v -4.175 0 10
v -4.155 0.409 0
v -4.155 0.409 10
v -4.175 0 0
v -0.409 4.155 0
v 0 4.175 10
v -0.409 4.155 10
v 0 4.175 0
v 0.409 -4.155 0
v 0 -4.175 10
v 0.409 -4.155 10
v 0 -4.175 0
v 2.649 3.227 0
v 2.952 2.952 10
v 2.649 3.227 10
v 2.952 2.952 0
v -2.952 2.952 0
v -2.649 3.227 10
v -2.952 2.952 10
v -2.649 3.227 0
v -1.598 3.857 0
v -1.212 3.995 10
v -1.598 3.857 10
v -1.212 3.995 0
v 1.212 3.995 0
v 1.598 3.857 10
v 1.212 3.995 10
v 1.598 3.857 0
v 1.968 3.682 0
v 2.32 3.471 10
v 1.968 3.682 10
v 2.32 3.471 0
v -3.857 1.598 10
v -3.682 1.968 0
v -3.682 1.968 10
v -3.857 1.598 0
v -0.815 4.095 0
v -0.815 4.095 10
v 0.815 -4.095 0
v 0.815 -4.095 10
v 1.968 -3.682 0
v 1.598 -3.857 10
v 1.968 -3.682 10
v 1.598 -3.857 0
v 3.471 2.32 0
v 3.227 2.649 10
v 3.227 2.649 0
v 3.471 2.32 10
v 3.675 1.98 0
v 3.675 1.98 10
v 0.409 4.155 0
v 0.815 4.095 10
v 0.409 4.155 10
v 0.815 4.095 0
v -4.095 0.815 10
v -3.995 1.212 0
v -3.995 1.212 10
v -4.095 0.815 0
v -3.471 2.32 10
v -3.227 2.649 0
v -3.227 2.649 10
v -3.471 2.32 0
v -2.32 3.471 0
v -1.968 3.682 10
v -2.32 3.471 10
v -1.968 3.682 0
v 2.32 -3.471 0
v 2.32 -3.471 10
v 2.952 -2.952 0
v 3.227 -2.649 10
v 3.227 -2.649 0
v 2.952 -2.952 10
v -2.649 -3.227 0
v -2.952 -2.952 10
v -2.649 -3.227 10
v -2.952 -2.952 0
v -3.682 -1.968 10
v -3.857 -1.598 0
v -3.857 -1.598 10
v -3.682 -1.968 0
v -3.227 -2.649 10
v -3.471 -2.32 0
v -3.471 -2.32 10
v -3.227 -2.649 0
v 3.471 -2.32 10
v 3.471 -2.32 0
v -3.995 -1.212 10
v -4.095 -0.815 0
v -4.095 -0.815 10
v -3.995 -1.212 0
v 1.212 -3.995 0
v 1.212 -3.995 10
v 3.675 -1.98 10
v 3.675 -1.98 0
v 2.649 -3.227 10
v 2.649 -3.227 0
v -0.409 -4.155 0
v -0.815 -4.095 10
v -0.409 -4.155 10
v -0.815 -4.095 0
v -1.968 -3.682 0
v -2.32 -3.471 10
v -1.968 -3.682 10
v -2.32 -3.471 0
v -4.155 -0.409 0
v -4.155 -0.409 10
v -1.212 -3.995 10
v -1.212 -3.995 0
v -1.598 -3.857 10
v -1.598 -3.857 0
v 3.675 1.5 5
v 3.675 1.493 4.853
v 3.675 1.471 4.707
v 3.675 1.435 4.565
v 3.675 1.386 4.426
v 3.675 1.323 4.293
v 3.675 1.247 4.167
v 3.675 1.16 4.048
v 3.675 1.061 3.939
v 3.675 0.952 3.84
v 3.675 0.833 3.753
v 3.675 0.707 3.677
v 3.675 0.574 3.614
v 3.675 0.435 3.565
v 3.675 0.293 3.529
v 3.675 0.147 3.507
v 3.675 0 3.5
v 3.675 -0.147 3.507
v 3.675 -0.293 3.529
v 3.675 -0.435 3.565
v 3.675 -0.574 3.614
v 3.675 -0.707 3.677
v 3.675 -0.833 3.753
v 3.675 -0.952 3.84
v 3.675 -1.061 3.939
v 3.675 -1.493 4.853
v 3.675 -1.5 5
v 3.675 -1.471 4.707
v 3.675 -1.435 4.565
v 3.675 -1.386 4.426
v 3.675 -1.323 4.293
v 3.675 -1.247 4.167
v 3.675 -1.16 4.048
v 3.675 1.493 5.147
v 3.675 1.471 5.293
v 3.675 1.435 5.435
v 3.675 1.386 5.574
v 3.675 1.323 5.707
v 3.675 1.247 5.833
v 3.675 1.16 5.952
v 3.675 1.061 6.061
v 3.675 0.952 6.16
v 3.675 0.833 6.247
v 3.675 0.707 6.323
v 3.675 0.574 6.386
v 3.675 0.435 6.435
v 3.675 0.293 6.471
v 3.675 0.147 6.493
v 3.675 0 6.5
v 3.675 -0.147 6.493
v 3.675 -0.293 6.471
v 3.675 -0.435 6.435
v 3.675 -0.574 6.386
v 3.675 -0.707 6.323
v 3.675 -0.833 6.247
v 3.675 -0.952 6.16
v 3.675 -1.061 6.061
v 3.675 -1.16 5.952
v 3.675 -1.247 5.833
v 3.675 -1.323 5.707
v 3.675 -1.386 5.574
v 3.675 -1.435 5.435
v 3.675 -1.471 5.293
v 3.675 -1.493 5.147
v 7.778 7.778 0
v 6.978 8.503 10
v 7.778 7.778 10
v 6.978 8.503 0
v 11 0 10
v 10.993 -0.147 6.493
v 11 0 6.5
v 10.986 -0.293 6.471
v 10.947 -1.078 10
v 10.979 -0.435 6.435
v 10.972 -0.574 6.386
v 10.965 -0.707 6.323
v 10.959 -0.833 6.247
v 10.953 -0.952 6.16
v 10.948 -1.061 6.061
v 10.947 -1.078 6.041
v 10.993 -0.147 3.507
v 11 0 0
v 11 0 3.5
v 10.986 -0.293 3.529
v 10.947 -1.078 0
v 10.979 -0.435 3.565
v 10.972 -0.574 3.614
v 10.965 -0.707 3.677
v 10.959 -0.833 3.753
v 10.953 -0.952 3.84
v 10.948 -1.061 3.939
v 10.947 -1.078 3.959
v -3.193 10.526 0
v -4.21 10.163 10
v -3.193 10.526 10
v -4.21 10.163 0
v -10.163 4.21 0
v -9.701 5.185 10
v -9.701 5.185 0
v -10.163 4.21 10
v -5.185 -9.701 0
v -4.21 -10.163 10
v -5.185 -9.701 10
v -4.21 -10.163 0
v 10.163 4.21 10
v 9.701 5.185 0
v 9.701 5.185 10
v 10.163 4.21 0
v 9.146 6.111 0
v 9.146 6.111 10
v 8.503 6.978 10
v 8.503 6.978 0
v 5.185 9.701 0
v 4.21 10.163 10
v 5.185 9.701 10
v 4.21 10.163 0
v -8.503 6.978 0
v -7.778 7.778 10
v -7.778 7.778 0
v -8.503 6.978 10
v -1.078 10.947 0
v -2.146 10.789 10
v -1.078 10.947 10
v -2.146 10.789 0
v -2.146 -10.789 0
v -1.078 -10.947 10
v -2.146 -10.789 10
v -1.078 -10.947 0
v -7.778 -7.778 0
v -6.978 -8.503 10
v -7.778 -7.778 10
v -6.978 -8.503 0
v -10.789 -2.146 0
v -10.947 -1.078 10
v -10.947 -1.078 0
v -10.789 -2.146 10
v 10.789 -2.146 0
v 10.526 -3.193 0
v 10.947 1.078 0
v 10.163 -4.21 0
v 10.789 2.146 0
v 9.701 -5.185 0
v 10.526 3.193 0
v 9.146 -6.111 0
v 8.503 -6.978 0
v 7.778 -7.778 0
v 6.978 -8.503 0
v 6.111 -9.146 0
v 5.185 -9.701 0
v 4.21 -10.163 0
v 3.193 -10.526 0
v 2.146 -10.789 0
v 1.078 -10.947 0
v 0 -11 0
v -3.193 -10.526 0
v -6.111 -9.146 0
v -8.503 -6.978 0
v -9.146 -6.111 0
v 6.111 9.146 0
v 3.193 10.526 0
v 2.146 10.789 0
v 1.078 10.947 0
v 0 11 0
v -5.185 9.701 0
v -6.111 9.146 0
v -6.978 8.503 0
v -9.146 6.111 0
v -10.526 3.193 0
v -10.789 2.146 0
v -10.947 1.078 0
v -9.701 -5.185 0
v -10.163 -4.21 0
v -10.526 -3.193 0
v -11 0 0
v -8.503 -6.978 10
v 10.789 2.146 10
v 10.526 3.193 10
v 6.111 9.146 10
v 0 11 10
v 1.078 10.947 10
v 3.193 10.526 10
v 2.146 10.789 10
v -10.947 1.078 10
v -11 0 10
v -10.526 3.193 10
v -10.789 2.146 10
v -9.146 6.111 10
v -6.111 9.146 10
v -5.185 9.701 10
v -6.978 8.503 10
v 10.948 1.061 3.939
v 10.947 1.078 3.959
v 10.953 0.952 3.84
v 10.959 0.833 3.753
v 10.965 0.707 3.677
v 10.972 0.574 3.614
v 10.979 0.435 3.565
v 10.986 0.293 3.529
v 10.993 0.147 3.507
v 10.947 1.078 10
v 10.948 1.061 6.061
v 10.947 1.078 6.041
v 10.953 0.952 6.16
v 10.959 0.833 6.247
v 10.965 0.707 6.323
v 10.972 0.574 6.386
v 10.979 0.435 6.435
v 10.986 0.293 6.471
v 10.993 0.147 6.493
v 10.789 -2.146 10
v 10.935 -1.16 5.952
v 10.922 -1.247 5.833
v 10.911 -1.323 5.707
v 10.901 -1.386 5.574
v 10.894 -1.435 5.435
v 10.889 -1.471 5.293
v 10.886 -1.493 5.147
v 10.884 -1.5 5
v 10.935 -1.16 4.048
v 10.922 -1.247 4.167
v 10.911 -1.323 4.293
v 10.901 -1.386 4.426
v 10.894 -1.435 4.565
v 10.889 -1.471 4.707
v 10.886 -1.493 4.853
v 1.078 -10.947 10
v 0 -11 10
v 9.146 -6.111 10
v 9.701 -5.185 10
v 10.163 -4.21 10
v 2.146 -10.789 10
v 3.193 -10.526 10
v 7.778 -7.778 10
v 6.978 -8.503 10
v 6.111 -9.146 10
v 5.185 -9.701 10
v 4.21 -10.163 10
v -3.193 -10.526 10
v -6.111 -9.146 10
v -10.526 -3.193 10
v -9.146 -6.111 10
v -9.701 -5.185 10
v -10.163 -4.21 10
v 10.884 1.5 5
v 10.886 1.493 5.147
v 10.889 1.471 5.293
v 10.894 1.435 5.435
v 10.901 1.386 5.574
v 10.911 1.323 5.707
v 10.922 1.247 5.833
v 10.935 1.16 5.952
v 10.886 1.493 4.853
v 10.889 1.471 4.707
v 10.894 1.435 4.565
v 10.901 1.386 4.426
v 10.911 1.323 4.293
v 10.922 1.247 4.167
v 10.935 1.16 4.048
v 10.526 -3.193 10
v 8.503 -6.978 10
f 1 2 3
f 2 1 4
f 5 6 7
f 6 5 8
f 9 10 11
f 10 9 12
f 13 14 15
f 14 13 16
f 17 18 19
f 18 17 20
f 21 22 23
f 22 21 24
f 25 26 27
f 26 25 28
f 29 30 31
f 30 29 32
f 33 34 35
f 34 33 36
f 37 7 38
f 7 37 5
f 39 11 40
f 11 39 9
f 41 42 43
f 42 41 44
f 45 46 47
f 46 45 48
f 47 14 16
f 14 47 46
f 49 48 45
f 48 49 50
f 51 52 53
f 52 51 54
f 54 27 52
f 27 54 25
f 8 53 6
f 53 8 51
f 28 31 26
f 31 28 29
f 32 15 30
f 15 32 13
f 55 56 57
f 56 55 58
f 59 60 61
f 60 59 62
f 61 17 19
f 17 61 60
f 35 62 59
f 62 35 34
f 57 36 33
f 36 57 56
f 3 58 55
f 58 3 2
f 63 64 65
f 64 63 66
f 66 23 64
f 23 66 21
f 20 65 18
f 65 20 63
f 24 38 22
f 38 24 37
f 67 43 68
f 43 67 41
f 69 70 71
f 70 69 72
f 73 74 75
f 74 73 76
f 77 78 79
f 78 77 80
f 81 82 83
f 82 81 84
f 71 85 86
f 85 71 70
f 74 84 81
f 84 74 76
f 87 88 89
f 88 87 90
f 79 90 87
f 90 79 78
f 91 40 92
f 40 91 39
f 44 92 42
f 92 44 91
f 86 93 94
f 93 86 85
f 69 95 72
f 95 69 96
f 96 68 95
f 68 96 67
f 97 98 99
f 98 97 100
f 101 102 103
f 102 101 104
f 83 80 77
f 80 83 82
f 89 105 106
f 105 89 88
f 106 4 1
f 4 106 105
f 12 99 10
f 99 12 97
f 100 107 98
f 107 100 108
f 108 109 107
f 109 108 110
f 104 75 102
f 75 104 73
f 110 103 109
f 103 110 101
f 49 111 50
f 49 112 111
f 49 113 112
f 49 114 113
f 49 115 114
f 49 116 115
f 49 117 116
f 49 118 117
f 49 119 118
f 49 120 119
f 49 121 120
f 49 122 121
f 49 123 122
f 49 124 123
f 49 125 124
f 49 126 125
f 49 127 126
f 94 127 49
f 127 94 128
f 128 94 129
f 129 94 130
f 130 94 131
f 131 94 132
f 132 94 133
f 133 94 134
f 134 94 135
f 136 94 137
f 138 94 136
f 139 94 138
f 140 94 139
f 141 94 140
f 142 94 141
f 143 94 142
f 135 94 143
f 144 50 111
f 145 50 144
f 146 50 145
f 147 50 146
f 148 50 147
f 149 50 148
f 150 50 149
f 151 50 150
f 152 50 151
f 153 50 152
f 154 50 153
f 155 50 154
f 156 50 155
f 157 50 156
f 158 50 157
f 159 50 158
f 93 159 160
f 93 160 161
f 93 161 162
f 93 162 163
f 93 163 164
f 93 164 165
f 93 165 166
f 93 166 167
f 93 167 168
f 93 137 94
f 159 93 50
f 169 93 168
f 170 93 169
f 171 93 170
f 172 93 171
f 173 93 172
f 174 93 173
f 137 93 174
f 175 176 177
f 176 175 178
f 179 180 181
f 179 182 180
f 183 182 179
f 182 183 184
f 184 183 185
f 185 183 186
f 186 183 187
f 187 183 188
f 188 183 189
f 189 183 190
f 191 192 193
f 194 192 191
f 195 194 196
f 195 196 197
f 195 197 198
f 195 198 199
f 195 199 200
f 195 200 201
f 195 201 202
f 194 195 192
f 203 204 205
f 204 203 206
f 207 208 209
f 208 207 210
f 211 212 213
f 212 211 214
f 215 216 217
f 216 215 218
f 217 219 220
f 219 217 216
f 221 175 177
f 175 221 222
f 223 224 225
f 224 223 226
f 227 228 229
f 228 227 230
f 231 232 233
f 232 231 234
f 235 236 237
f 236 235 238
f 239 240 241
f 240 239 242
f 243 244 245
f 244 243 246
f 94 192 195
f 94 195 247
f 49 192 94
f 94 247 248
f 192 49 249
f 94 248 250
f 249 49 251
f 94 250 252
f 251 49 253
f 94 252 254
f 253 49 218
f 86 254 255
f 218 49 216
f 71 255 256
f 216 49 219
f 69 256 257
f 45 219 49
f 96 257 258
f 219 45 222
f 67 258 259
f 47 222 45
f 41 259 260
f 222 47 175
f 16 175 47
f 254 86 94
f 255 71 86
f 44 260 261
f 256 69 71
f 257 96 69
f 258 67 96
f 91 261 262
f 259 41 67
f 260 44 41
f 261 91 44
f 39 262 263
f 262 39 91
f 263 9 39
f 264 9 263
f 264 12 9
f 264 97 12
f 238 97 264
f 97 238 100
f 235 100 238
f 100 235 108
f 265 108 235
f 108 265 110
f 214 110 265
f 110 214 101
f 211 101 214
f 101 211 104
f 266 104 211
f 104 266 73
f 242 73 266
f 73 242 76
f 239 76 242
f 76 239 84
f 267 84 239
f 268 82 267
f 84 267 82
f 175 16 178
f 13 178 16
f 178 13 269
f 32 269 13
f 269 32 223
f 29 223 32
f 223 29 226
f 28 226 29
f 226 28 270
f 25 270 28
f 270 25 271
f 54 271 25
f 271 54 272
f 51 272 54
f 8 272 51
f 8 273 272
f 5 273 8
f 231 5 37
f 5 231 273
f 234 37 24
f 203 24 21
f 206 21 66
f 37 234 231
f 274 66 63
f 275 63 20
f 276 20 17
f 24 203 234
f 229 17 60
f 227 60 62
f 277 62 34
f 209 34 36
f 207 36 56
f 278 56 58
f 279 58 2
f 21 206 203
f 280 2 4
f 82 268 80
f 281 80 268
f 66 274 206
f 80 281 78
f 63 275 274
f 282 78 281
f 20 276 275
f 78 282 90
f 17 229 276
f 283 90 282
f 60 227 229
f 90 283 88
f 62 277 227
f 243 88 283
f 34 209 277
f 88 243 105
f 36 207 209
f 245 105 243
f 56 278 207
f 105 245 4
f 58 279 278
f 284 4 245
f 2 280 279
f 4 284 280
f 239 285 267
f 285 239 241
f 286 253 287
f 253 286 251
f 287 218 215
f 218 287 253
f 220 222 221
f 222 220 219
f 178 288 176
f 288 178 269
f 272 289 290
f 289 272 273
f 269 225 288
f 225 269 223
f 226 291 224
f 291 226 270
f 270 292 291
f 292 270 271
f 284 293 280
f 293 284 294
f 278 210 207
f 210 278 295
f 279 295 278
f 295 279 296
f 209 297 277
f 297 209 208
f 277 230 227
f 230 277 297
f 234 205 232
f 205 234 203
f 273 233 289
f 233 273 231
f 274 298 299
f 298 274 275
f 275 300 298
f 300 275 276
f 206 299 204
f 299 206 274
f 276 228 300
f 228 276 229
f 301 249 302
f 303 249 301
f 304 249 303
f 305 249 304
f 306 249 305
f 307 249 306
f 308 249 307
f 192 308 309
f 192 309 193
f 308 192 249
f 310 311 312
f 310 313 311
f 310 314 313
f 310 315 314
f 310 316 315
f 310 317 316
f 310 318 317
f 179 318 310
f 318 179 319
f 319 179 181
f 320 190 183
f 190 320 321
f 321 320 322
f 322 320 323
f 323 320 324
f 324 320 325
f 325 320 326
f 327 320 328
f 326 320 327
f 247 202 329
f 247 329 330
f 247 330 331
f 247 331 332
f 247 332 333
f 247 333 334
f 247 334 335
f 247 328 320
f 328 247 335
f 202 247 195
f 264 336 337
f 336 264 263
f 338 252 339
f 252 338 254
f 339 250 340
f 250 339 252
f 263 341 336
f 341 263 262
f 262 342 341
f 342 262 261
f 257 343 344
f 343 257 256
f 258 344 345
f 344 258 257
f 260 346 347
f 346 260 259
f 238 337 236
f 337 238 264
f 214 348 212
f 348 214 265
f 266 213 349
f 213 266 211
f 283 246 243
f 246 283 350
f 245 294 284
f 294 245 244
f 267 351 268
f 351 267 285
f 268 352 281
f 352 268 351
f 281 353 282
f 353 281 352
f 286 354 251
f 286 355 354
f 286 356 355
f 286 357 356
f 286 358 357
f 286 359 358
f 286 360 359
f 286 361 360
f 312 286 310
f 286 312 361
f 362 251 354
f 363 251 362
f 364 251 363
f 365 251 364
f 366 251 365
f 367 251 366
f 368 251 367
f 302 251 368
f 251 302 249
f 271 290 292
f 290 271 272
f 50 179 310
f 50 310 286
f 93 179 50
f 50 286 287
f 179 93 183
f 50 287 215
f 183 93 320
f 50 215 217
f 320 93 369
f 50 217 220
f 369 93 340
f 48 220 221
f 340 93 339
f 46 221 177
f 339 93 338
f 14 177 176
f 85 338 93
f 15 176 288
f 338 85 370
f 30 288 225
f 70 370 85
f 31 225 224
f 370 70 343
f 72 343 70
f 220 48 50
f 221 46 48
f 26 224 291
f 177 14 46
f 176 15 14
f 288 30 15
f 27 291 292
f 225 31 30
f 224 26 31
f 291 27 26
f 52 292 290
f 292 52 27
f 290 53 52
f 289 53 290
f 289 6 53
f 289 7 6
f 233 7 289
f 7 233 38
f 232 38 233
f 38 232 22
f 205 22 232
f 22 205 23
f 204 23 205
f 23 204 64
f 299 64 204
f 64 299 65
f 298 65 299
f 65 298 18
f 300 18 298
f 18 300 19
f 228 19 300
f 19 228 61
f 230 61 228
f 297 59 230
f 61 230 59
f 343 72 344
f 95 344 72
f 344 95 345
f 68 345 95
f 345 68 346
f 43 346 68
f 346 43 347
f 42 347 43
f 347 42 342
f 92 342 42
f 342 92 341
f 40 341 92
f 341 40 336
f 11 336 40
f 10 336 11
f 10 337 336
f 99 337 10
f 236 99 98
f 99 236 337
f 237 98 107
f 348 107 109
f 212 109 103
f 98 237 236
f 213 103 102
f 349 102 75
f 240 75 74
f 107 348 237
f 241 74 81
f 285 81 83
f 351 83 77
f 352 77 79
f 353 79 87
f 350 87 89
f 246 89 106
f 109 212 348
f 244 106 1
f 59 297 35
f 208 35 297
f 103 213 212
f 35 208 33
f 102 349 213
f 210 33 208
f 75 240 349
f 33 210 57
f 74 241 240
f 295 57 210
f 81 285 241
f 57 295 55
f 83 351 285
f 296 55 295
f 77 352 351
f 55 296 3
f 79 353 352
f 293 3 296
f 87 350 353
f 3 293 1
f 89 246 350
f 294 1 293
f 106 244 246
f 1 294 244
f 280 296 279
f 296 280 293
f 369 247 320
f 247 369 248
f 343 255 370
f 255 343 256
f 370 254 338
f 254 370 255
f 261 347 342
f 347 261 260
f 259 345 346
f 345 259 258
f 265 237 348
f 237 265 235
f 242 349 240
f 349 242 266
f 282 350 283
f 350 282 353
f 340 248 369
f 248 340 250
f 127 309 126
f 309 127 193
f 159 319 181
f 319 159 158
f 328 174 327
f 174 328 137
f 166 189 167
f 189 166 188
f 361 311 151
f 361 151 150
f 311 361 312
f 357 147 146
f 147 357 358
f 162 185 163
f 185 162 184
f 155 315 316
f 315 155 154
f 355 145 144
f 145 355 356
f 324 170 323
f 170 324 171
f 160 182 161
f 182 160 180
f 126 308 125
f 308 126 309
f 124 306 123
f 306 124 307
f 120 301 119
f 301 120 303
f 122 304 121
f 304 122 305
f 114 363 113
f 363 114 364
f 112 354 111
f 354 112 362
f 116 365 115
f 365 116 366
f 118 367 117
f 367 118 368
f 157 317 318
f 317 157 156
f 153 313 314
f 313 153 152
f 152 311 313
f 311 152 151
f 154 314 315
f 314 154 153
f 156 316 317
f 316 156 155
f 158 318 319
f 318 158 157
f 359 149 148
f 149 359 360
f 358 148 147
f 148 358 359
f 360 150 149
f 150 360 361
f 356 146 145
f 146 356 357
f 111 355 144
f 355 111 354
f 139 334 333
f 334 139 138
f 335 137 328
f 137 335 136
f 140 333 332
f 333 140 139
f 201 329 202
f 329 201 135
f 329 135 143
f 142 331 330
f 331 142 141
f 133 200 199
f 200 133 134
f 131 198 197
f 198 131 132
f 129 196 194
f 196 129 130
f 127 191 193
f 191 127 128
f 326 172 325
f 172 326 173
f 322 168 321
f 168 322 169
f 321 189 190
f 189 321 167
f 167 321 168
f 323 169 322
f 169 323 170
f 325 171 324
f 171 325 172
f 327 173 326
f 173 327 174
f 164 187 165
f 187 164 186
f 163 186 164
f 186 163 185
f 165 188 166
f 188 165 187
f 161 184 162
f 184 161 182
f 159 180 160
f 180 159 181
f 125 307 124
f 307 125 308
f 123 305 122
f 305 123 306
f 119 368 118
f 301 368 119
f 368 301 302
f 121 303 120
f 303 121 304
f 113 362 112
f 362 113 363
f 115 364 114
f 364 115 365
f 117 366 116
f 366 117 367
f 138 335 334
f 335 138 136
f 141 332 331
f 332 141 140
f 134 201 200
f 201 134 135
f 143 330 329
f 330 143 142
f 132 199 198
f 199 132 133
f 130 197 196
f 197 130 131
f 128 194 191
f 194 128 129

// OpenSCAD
// file: parameters.scad
// =============================================================================
// Gen-BM — nightly 2026-10-06 (physics_scorer, honest magpylib watts)
// Lowest-gap pancake: Ø20 ring at R52 (Ø5 assists R42/52/62) with low-profile 7.65 mm dense-wound copper and an 18 mm radial build on wide 29–71 mm sector bobbins — the smallest magnet gap of the series (10.25 mm) — on thick 1/4" (6.35 mm) steel so the higher flux per pole stays well clear of saturation.
// Clocking 0 deg (magnets N facing S) + D-flat keyed bore + index notch + flip-symmetric hole map.
// Windable 2-piece bobbin; turns = physics_scorer turns_fit; copper only between flanges.
// Steel back-iron: 2× Ø138 × 6.35 mm (1/4") mild-steel discs (steel_backiron_disc.dxf); magnets sit ON the steel
// (through-pockets) -> score with --back-iron.
// =============================================================================
topology            = "dual_rotor";

// --- Wire / winding (physics_scorer winding-fit) -------------------------------
wire_awg            = 26;
wire_od             = 0.45;     // insulated OD mm (bare 0.405)
fill_realistic      = 0.65;     // insulated-wire area / window (DENSE layered wind with a jig; scorer cap 0.65)
turns               = 562;       // = physics_scorer turns_fit (do NOT raise)
coil_former_type    = "bobbin";
coil_core_inset     = 18.00;     // radial copper build: hub = copper boundary inset by this
wind_build_axial    = 0.0;      // nothing proud of the flanges
wind_build_radial   = 0.0;

// --- Bobbin (base + lid) ---------------------------------------------------------
coil_id_r           = 29.00;    // copper boundary sector
coil_od_r           = 71.00;
span_deg            = 52.68;    // = pitch - 2*asin((wall+0.85)/coil_id_r) -> >=1.2 mm stator web
former_web          = 7.65;     // copper height between flanges (TALL copper: steel keeps Bz up)
flange_t            = 0.80;     // >= 0.8 mm FDM wall rule (tall winds push on the flanges)
wall                = 1.00;     // flange lip beyond copper
former_bare_h       = former_web + 2 * flange_t;
coil_envelope_h     = former_bare_h + 2 * wind_build_axial;
tab_w               = 7.0;
tab_len             = 7.0;
tab_h               = former_bare_h / 2;
pin_d               = 1.9;      // 1.75 mm filament locating pin
coil_mount_r        = coil_od_r + 0.2 + 4.0;
lead_y              = 1.6;
lead_slot_w         = 0.9;
lead_groove_d       = 0.6;

// --- Gap -------------------------------------------------------------------------
run_clear           = 0.50;     // rotor face -> flange
gap_spacer_h        = run_clear + wind_build_axial;
m2m                 = coil_envelope_h + 2 * run_clear;   // rotor face to rotor face (= gap_sleeve length)

// --- Stator ----------------------------------------------------------------------
coil_stations       = 6;
bay_clear           = 0.25;
stator_thick        = former_bare_h;                        // bobbins flush both faces
stator_od           = 160.0;
shaft_clear_stator  = 14.0;     // stator is static; gap sleeve OD 12 spins inside

// --- Rotor(s) --------------------------------------------------------------------
magnet_Br           = 1.43;     // N52
magnet_d_large      = 20.0;
magnet_h_large      = 5.0;      // one O20x5 per pocket
magnet_h_small      = 5.0;      // one O5x5 per pocket
halbach_magnetisation = "diametric"; // O5x5 assist magnets MUST be DIAMETRICALLY magnetised (tangential)
rotor_b_same_axis   = true;     // same-index magnets share one axis: N faces S across the gap
large_pocket_d      = 20.3;
small_pocket_d      = 5.3;
pocket_h            = 5.10;     // THROUGH the carrier: magnet back face sits on the steel disc
large_n             = 8;
R_large             = 52.0;
R_small_inner       = 42.0;
R_small_mid         = 52.0;
R_small_outer       = 62.0;
small_r_list        = [R_small_inner, R_small_mid, R_small_outer];   // O5 pockets between poles
carrier_od          = 138.0;
carrier_thick       = pocket_h;
hub_h               = 13.5;     // > steel_t + insert: radial set-screw clears the steel
hub_od              = 24.0;     // slim hub so the M4 brace rods fit at R~18 inside the coil ring
hub_insert_d        = 4.0;      // M3 heat-set insert, radial, bears on the D-flat
rotor_b_offset_deg  = 0.0;      // CLOCKING: magnets directly opposite
shaft_key           = "dflat";
dflat_depth         = 0.5;      // 8 mm shaft with 0.5 mm flat (7.5 across flat)
index_notch_d       = 3.0;

// --- Steel back-iron (buyable laser-cut) -------------------------------------------
steel_t             = 6.35;      // mild steel thickness (image method ignores it; sized from steel_flux.py so the return path stays well below saturation)
steel_center_hole   = 26.0;     // slips over the rotor hub (OD 24)
steel_od            = carrier_od;   // steel disc OD = rotor carrier OD

// --- Modular MAX interface ----------------------------------------------------------
shaft_bore          = 8.35;
dflat_x             = 4.0 - dflat_depth + (shaft_bore - 8.0) / 2;
bearing_d           = 21.85;
bearing_h           = 7.2;
m3_clear            = 3.5;
bolt_r_inner        = 30.0;     // M3 steel-disc clamp bolts (inside the magnet ring)
bolt_n_inner        = 4;
bolt_inner_angles   = [0, 90, 180, 270];
bolt_r_outer        = 65.0;     // M3 steel-disc clamp bolts (outside the magnet ring)
bolt_outer_angles   = [45, 135, 225, 315];
flange_bolt_r       = 75.0;     // frame rods: OUTSIDE the rotor OD (rotors spin inside them)
flange_bolt_n       = 6;
flange_bolt_offset  = 30.00;    // between coil stations -> never cuts a lead groove/tab
brace_r             = 18.0;
brace_d             = 4.3;      // temporary M4 jack rods (assembly only)
brace_n             = 4;
brace_angles        = [45, 135, 225, 315];          // flip-symmetric

spacer_pad_od       = 14.0;
spacer_pad_id       = m3_clear;
endbell_od          = 160.0;
endbell_thick       = 8.0;
endbell_shaft_clear = 10.0;
collar_h            = 10.0;
standoff_od         = 9.0;
frame_standoff_h    = run_clear + carrier_thick + hub_h + collar_h + 2.0;
sleeve_od           = 12.0;
plate_max_mm        = 410;

$fn = 64;
// main file
// Gen-BM — shaft collar with D-flat bore (set screw bears on the flat); print x4
include <parameters.scad>;
$fn = 64;
// D-flat keyed bore: flat faces +X (angle 0 = magnet pocket 0 = index notch)
module dflat_bore(h) {
    intersection() {
        cylinder(d=shaft_bore, h=h);
        translate([-shaft_bore, -shaft_bore, 0]) cube([shaft_bore + dflat_x, 2*shaft_bore, h]);
    }
}

od = 22; h = collar_h; set_d = 3.0;
difference() {
    cylinder(d=od, h=h);
    translate([0, 0, -0.1]) dflat_bore(h + 0.2);
    translate([0, 0, h/2]) rotate([0, 90, 0]) cylinder(d=set_d, h=od);
}
